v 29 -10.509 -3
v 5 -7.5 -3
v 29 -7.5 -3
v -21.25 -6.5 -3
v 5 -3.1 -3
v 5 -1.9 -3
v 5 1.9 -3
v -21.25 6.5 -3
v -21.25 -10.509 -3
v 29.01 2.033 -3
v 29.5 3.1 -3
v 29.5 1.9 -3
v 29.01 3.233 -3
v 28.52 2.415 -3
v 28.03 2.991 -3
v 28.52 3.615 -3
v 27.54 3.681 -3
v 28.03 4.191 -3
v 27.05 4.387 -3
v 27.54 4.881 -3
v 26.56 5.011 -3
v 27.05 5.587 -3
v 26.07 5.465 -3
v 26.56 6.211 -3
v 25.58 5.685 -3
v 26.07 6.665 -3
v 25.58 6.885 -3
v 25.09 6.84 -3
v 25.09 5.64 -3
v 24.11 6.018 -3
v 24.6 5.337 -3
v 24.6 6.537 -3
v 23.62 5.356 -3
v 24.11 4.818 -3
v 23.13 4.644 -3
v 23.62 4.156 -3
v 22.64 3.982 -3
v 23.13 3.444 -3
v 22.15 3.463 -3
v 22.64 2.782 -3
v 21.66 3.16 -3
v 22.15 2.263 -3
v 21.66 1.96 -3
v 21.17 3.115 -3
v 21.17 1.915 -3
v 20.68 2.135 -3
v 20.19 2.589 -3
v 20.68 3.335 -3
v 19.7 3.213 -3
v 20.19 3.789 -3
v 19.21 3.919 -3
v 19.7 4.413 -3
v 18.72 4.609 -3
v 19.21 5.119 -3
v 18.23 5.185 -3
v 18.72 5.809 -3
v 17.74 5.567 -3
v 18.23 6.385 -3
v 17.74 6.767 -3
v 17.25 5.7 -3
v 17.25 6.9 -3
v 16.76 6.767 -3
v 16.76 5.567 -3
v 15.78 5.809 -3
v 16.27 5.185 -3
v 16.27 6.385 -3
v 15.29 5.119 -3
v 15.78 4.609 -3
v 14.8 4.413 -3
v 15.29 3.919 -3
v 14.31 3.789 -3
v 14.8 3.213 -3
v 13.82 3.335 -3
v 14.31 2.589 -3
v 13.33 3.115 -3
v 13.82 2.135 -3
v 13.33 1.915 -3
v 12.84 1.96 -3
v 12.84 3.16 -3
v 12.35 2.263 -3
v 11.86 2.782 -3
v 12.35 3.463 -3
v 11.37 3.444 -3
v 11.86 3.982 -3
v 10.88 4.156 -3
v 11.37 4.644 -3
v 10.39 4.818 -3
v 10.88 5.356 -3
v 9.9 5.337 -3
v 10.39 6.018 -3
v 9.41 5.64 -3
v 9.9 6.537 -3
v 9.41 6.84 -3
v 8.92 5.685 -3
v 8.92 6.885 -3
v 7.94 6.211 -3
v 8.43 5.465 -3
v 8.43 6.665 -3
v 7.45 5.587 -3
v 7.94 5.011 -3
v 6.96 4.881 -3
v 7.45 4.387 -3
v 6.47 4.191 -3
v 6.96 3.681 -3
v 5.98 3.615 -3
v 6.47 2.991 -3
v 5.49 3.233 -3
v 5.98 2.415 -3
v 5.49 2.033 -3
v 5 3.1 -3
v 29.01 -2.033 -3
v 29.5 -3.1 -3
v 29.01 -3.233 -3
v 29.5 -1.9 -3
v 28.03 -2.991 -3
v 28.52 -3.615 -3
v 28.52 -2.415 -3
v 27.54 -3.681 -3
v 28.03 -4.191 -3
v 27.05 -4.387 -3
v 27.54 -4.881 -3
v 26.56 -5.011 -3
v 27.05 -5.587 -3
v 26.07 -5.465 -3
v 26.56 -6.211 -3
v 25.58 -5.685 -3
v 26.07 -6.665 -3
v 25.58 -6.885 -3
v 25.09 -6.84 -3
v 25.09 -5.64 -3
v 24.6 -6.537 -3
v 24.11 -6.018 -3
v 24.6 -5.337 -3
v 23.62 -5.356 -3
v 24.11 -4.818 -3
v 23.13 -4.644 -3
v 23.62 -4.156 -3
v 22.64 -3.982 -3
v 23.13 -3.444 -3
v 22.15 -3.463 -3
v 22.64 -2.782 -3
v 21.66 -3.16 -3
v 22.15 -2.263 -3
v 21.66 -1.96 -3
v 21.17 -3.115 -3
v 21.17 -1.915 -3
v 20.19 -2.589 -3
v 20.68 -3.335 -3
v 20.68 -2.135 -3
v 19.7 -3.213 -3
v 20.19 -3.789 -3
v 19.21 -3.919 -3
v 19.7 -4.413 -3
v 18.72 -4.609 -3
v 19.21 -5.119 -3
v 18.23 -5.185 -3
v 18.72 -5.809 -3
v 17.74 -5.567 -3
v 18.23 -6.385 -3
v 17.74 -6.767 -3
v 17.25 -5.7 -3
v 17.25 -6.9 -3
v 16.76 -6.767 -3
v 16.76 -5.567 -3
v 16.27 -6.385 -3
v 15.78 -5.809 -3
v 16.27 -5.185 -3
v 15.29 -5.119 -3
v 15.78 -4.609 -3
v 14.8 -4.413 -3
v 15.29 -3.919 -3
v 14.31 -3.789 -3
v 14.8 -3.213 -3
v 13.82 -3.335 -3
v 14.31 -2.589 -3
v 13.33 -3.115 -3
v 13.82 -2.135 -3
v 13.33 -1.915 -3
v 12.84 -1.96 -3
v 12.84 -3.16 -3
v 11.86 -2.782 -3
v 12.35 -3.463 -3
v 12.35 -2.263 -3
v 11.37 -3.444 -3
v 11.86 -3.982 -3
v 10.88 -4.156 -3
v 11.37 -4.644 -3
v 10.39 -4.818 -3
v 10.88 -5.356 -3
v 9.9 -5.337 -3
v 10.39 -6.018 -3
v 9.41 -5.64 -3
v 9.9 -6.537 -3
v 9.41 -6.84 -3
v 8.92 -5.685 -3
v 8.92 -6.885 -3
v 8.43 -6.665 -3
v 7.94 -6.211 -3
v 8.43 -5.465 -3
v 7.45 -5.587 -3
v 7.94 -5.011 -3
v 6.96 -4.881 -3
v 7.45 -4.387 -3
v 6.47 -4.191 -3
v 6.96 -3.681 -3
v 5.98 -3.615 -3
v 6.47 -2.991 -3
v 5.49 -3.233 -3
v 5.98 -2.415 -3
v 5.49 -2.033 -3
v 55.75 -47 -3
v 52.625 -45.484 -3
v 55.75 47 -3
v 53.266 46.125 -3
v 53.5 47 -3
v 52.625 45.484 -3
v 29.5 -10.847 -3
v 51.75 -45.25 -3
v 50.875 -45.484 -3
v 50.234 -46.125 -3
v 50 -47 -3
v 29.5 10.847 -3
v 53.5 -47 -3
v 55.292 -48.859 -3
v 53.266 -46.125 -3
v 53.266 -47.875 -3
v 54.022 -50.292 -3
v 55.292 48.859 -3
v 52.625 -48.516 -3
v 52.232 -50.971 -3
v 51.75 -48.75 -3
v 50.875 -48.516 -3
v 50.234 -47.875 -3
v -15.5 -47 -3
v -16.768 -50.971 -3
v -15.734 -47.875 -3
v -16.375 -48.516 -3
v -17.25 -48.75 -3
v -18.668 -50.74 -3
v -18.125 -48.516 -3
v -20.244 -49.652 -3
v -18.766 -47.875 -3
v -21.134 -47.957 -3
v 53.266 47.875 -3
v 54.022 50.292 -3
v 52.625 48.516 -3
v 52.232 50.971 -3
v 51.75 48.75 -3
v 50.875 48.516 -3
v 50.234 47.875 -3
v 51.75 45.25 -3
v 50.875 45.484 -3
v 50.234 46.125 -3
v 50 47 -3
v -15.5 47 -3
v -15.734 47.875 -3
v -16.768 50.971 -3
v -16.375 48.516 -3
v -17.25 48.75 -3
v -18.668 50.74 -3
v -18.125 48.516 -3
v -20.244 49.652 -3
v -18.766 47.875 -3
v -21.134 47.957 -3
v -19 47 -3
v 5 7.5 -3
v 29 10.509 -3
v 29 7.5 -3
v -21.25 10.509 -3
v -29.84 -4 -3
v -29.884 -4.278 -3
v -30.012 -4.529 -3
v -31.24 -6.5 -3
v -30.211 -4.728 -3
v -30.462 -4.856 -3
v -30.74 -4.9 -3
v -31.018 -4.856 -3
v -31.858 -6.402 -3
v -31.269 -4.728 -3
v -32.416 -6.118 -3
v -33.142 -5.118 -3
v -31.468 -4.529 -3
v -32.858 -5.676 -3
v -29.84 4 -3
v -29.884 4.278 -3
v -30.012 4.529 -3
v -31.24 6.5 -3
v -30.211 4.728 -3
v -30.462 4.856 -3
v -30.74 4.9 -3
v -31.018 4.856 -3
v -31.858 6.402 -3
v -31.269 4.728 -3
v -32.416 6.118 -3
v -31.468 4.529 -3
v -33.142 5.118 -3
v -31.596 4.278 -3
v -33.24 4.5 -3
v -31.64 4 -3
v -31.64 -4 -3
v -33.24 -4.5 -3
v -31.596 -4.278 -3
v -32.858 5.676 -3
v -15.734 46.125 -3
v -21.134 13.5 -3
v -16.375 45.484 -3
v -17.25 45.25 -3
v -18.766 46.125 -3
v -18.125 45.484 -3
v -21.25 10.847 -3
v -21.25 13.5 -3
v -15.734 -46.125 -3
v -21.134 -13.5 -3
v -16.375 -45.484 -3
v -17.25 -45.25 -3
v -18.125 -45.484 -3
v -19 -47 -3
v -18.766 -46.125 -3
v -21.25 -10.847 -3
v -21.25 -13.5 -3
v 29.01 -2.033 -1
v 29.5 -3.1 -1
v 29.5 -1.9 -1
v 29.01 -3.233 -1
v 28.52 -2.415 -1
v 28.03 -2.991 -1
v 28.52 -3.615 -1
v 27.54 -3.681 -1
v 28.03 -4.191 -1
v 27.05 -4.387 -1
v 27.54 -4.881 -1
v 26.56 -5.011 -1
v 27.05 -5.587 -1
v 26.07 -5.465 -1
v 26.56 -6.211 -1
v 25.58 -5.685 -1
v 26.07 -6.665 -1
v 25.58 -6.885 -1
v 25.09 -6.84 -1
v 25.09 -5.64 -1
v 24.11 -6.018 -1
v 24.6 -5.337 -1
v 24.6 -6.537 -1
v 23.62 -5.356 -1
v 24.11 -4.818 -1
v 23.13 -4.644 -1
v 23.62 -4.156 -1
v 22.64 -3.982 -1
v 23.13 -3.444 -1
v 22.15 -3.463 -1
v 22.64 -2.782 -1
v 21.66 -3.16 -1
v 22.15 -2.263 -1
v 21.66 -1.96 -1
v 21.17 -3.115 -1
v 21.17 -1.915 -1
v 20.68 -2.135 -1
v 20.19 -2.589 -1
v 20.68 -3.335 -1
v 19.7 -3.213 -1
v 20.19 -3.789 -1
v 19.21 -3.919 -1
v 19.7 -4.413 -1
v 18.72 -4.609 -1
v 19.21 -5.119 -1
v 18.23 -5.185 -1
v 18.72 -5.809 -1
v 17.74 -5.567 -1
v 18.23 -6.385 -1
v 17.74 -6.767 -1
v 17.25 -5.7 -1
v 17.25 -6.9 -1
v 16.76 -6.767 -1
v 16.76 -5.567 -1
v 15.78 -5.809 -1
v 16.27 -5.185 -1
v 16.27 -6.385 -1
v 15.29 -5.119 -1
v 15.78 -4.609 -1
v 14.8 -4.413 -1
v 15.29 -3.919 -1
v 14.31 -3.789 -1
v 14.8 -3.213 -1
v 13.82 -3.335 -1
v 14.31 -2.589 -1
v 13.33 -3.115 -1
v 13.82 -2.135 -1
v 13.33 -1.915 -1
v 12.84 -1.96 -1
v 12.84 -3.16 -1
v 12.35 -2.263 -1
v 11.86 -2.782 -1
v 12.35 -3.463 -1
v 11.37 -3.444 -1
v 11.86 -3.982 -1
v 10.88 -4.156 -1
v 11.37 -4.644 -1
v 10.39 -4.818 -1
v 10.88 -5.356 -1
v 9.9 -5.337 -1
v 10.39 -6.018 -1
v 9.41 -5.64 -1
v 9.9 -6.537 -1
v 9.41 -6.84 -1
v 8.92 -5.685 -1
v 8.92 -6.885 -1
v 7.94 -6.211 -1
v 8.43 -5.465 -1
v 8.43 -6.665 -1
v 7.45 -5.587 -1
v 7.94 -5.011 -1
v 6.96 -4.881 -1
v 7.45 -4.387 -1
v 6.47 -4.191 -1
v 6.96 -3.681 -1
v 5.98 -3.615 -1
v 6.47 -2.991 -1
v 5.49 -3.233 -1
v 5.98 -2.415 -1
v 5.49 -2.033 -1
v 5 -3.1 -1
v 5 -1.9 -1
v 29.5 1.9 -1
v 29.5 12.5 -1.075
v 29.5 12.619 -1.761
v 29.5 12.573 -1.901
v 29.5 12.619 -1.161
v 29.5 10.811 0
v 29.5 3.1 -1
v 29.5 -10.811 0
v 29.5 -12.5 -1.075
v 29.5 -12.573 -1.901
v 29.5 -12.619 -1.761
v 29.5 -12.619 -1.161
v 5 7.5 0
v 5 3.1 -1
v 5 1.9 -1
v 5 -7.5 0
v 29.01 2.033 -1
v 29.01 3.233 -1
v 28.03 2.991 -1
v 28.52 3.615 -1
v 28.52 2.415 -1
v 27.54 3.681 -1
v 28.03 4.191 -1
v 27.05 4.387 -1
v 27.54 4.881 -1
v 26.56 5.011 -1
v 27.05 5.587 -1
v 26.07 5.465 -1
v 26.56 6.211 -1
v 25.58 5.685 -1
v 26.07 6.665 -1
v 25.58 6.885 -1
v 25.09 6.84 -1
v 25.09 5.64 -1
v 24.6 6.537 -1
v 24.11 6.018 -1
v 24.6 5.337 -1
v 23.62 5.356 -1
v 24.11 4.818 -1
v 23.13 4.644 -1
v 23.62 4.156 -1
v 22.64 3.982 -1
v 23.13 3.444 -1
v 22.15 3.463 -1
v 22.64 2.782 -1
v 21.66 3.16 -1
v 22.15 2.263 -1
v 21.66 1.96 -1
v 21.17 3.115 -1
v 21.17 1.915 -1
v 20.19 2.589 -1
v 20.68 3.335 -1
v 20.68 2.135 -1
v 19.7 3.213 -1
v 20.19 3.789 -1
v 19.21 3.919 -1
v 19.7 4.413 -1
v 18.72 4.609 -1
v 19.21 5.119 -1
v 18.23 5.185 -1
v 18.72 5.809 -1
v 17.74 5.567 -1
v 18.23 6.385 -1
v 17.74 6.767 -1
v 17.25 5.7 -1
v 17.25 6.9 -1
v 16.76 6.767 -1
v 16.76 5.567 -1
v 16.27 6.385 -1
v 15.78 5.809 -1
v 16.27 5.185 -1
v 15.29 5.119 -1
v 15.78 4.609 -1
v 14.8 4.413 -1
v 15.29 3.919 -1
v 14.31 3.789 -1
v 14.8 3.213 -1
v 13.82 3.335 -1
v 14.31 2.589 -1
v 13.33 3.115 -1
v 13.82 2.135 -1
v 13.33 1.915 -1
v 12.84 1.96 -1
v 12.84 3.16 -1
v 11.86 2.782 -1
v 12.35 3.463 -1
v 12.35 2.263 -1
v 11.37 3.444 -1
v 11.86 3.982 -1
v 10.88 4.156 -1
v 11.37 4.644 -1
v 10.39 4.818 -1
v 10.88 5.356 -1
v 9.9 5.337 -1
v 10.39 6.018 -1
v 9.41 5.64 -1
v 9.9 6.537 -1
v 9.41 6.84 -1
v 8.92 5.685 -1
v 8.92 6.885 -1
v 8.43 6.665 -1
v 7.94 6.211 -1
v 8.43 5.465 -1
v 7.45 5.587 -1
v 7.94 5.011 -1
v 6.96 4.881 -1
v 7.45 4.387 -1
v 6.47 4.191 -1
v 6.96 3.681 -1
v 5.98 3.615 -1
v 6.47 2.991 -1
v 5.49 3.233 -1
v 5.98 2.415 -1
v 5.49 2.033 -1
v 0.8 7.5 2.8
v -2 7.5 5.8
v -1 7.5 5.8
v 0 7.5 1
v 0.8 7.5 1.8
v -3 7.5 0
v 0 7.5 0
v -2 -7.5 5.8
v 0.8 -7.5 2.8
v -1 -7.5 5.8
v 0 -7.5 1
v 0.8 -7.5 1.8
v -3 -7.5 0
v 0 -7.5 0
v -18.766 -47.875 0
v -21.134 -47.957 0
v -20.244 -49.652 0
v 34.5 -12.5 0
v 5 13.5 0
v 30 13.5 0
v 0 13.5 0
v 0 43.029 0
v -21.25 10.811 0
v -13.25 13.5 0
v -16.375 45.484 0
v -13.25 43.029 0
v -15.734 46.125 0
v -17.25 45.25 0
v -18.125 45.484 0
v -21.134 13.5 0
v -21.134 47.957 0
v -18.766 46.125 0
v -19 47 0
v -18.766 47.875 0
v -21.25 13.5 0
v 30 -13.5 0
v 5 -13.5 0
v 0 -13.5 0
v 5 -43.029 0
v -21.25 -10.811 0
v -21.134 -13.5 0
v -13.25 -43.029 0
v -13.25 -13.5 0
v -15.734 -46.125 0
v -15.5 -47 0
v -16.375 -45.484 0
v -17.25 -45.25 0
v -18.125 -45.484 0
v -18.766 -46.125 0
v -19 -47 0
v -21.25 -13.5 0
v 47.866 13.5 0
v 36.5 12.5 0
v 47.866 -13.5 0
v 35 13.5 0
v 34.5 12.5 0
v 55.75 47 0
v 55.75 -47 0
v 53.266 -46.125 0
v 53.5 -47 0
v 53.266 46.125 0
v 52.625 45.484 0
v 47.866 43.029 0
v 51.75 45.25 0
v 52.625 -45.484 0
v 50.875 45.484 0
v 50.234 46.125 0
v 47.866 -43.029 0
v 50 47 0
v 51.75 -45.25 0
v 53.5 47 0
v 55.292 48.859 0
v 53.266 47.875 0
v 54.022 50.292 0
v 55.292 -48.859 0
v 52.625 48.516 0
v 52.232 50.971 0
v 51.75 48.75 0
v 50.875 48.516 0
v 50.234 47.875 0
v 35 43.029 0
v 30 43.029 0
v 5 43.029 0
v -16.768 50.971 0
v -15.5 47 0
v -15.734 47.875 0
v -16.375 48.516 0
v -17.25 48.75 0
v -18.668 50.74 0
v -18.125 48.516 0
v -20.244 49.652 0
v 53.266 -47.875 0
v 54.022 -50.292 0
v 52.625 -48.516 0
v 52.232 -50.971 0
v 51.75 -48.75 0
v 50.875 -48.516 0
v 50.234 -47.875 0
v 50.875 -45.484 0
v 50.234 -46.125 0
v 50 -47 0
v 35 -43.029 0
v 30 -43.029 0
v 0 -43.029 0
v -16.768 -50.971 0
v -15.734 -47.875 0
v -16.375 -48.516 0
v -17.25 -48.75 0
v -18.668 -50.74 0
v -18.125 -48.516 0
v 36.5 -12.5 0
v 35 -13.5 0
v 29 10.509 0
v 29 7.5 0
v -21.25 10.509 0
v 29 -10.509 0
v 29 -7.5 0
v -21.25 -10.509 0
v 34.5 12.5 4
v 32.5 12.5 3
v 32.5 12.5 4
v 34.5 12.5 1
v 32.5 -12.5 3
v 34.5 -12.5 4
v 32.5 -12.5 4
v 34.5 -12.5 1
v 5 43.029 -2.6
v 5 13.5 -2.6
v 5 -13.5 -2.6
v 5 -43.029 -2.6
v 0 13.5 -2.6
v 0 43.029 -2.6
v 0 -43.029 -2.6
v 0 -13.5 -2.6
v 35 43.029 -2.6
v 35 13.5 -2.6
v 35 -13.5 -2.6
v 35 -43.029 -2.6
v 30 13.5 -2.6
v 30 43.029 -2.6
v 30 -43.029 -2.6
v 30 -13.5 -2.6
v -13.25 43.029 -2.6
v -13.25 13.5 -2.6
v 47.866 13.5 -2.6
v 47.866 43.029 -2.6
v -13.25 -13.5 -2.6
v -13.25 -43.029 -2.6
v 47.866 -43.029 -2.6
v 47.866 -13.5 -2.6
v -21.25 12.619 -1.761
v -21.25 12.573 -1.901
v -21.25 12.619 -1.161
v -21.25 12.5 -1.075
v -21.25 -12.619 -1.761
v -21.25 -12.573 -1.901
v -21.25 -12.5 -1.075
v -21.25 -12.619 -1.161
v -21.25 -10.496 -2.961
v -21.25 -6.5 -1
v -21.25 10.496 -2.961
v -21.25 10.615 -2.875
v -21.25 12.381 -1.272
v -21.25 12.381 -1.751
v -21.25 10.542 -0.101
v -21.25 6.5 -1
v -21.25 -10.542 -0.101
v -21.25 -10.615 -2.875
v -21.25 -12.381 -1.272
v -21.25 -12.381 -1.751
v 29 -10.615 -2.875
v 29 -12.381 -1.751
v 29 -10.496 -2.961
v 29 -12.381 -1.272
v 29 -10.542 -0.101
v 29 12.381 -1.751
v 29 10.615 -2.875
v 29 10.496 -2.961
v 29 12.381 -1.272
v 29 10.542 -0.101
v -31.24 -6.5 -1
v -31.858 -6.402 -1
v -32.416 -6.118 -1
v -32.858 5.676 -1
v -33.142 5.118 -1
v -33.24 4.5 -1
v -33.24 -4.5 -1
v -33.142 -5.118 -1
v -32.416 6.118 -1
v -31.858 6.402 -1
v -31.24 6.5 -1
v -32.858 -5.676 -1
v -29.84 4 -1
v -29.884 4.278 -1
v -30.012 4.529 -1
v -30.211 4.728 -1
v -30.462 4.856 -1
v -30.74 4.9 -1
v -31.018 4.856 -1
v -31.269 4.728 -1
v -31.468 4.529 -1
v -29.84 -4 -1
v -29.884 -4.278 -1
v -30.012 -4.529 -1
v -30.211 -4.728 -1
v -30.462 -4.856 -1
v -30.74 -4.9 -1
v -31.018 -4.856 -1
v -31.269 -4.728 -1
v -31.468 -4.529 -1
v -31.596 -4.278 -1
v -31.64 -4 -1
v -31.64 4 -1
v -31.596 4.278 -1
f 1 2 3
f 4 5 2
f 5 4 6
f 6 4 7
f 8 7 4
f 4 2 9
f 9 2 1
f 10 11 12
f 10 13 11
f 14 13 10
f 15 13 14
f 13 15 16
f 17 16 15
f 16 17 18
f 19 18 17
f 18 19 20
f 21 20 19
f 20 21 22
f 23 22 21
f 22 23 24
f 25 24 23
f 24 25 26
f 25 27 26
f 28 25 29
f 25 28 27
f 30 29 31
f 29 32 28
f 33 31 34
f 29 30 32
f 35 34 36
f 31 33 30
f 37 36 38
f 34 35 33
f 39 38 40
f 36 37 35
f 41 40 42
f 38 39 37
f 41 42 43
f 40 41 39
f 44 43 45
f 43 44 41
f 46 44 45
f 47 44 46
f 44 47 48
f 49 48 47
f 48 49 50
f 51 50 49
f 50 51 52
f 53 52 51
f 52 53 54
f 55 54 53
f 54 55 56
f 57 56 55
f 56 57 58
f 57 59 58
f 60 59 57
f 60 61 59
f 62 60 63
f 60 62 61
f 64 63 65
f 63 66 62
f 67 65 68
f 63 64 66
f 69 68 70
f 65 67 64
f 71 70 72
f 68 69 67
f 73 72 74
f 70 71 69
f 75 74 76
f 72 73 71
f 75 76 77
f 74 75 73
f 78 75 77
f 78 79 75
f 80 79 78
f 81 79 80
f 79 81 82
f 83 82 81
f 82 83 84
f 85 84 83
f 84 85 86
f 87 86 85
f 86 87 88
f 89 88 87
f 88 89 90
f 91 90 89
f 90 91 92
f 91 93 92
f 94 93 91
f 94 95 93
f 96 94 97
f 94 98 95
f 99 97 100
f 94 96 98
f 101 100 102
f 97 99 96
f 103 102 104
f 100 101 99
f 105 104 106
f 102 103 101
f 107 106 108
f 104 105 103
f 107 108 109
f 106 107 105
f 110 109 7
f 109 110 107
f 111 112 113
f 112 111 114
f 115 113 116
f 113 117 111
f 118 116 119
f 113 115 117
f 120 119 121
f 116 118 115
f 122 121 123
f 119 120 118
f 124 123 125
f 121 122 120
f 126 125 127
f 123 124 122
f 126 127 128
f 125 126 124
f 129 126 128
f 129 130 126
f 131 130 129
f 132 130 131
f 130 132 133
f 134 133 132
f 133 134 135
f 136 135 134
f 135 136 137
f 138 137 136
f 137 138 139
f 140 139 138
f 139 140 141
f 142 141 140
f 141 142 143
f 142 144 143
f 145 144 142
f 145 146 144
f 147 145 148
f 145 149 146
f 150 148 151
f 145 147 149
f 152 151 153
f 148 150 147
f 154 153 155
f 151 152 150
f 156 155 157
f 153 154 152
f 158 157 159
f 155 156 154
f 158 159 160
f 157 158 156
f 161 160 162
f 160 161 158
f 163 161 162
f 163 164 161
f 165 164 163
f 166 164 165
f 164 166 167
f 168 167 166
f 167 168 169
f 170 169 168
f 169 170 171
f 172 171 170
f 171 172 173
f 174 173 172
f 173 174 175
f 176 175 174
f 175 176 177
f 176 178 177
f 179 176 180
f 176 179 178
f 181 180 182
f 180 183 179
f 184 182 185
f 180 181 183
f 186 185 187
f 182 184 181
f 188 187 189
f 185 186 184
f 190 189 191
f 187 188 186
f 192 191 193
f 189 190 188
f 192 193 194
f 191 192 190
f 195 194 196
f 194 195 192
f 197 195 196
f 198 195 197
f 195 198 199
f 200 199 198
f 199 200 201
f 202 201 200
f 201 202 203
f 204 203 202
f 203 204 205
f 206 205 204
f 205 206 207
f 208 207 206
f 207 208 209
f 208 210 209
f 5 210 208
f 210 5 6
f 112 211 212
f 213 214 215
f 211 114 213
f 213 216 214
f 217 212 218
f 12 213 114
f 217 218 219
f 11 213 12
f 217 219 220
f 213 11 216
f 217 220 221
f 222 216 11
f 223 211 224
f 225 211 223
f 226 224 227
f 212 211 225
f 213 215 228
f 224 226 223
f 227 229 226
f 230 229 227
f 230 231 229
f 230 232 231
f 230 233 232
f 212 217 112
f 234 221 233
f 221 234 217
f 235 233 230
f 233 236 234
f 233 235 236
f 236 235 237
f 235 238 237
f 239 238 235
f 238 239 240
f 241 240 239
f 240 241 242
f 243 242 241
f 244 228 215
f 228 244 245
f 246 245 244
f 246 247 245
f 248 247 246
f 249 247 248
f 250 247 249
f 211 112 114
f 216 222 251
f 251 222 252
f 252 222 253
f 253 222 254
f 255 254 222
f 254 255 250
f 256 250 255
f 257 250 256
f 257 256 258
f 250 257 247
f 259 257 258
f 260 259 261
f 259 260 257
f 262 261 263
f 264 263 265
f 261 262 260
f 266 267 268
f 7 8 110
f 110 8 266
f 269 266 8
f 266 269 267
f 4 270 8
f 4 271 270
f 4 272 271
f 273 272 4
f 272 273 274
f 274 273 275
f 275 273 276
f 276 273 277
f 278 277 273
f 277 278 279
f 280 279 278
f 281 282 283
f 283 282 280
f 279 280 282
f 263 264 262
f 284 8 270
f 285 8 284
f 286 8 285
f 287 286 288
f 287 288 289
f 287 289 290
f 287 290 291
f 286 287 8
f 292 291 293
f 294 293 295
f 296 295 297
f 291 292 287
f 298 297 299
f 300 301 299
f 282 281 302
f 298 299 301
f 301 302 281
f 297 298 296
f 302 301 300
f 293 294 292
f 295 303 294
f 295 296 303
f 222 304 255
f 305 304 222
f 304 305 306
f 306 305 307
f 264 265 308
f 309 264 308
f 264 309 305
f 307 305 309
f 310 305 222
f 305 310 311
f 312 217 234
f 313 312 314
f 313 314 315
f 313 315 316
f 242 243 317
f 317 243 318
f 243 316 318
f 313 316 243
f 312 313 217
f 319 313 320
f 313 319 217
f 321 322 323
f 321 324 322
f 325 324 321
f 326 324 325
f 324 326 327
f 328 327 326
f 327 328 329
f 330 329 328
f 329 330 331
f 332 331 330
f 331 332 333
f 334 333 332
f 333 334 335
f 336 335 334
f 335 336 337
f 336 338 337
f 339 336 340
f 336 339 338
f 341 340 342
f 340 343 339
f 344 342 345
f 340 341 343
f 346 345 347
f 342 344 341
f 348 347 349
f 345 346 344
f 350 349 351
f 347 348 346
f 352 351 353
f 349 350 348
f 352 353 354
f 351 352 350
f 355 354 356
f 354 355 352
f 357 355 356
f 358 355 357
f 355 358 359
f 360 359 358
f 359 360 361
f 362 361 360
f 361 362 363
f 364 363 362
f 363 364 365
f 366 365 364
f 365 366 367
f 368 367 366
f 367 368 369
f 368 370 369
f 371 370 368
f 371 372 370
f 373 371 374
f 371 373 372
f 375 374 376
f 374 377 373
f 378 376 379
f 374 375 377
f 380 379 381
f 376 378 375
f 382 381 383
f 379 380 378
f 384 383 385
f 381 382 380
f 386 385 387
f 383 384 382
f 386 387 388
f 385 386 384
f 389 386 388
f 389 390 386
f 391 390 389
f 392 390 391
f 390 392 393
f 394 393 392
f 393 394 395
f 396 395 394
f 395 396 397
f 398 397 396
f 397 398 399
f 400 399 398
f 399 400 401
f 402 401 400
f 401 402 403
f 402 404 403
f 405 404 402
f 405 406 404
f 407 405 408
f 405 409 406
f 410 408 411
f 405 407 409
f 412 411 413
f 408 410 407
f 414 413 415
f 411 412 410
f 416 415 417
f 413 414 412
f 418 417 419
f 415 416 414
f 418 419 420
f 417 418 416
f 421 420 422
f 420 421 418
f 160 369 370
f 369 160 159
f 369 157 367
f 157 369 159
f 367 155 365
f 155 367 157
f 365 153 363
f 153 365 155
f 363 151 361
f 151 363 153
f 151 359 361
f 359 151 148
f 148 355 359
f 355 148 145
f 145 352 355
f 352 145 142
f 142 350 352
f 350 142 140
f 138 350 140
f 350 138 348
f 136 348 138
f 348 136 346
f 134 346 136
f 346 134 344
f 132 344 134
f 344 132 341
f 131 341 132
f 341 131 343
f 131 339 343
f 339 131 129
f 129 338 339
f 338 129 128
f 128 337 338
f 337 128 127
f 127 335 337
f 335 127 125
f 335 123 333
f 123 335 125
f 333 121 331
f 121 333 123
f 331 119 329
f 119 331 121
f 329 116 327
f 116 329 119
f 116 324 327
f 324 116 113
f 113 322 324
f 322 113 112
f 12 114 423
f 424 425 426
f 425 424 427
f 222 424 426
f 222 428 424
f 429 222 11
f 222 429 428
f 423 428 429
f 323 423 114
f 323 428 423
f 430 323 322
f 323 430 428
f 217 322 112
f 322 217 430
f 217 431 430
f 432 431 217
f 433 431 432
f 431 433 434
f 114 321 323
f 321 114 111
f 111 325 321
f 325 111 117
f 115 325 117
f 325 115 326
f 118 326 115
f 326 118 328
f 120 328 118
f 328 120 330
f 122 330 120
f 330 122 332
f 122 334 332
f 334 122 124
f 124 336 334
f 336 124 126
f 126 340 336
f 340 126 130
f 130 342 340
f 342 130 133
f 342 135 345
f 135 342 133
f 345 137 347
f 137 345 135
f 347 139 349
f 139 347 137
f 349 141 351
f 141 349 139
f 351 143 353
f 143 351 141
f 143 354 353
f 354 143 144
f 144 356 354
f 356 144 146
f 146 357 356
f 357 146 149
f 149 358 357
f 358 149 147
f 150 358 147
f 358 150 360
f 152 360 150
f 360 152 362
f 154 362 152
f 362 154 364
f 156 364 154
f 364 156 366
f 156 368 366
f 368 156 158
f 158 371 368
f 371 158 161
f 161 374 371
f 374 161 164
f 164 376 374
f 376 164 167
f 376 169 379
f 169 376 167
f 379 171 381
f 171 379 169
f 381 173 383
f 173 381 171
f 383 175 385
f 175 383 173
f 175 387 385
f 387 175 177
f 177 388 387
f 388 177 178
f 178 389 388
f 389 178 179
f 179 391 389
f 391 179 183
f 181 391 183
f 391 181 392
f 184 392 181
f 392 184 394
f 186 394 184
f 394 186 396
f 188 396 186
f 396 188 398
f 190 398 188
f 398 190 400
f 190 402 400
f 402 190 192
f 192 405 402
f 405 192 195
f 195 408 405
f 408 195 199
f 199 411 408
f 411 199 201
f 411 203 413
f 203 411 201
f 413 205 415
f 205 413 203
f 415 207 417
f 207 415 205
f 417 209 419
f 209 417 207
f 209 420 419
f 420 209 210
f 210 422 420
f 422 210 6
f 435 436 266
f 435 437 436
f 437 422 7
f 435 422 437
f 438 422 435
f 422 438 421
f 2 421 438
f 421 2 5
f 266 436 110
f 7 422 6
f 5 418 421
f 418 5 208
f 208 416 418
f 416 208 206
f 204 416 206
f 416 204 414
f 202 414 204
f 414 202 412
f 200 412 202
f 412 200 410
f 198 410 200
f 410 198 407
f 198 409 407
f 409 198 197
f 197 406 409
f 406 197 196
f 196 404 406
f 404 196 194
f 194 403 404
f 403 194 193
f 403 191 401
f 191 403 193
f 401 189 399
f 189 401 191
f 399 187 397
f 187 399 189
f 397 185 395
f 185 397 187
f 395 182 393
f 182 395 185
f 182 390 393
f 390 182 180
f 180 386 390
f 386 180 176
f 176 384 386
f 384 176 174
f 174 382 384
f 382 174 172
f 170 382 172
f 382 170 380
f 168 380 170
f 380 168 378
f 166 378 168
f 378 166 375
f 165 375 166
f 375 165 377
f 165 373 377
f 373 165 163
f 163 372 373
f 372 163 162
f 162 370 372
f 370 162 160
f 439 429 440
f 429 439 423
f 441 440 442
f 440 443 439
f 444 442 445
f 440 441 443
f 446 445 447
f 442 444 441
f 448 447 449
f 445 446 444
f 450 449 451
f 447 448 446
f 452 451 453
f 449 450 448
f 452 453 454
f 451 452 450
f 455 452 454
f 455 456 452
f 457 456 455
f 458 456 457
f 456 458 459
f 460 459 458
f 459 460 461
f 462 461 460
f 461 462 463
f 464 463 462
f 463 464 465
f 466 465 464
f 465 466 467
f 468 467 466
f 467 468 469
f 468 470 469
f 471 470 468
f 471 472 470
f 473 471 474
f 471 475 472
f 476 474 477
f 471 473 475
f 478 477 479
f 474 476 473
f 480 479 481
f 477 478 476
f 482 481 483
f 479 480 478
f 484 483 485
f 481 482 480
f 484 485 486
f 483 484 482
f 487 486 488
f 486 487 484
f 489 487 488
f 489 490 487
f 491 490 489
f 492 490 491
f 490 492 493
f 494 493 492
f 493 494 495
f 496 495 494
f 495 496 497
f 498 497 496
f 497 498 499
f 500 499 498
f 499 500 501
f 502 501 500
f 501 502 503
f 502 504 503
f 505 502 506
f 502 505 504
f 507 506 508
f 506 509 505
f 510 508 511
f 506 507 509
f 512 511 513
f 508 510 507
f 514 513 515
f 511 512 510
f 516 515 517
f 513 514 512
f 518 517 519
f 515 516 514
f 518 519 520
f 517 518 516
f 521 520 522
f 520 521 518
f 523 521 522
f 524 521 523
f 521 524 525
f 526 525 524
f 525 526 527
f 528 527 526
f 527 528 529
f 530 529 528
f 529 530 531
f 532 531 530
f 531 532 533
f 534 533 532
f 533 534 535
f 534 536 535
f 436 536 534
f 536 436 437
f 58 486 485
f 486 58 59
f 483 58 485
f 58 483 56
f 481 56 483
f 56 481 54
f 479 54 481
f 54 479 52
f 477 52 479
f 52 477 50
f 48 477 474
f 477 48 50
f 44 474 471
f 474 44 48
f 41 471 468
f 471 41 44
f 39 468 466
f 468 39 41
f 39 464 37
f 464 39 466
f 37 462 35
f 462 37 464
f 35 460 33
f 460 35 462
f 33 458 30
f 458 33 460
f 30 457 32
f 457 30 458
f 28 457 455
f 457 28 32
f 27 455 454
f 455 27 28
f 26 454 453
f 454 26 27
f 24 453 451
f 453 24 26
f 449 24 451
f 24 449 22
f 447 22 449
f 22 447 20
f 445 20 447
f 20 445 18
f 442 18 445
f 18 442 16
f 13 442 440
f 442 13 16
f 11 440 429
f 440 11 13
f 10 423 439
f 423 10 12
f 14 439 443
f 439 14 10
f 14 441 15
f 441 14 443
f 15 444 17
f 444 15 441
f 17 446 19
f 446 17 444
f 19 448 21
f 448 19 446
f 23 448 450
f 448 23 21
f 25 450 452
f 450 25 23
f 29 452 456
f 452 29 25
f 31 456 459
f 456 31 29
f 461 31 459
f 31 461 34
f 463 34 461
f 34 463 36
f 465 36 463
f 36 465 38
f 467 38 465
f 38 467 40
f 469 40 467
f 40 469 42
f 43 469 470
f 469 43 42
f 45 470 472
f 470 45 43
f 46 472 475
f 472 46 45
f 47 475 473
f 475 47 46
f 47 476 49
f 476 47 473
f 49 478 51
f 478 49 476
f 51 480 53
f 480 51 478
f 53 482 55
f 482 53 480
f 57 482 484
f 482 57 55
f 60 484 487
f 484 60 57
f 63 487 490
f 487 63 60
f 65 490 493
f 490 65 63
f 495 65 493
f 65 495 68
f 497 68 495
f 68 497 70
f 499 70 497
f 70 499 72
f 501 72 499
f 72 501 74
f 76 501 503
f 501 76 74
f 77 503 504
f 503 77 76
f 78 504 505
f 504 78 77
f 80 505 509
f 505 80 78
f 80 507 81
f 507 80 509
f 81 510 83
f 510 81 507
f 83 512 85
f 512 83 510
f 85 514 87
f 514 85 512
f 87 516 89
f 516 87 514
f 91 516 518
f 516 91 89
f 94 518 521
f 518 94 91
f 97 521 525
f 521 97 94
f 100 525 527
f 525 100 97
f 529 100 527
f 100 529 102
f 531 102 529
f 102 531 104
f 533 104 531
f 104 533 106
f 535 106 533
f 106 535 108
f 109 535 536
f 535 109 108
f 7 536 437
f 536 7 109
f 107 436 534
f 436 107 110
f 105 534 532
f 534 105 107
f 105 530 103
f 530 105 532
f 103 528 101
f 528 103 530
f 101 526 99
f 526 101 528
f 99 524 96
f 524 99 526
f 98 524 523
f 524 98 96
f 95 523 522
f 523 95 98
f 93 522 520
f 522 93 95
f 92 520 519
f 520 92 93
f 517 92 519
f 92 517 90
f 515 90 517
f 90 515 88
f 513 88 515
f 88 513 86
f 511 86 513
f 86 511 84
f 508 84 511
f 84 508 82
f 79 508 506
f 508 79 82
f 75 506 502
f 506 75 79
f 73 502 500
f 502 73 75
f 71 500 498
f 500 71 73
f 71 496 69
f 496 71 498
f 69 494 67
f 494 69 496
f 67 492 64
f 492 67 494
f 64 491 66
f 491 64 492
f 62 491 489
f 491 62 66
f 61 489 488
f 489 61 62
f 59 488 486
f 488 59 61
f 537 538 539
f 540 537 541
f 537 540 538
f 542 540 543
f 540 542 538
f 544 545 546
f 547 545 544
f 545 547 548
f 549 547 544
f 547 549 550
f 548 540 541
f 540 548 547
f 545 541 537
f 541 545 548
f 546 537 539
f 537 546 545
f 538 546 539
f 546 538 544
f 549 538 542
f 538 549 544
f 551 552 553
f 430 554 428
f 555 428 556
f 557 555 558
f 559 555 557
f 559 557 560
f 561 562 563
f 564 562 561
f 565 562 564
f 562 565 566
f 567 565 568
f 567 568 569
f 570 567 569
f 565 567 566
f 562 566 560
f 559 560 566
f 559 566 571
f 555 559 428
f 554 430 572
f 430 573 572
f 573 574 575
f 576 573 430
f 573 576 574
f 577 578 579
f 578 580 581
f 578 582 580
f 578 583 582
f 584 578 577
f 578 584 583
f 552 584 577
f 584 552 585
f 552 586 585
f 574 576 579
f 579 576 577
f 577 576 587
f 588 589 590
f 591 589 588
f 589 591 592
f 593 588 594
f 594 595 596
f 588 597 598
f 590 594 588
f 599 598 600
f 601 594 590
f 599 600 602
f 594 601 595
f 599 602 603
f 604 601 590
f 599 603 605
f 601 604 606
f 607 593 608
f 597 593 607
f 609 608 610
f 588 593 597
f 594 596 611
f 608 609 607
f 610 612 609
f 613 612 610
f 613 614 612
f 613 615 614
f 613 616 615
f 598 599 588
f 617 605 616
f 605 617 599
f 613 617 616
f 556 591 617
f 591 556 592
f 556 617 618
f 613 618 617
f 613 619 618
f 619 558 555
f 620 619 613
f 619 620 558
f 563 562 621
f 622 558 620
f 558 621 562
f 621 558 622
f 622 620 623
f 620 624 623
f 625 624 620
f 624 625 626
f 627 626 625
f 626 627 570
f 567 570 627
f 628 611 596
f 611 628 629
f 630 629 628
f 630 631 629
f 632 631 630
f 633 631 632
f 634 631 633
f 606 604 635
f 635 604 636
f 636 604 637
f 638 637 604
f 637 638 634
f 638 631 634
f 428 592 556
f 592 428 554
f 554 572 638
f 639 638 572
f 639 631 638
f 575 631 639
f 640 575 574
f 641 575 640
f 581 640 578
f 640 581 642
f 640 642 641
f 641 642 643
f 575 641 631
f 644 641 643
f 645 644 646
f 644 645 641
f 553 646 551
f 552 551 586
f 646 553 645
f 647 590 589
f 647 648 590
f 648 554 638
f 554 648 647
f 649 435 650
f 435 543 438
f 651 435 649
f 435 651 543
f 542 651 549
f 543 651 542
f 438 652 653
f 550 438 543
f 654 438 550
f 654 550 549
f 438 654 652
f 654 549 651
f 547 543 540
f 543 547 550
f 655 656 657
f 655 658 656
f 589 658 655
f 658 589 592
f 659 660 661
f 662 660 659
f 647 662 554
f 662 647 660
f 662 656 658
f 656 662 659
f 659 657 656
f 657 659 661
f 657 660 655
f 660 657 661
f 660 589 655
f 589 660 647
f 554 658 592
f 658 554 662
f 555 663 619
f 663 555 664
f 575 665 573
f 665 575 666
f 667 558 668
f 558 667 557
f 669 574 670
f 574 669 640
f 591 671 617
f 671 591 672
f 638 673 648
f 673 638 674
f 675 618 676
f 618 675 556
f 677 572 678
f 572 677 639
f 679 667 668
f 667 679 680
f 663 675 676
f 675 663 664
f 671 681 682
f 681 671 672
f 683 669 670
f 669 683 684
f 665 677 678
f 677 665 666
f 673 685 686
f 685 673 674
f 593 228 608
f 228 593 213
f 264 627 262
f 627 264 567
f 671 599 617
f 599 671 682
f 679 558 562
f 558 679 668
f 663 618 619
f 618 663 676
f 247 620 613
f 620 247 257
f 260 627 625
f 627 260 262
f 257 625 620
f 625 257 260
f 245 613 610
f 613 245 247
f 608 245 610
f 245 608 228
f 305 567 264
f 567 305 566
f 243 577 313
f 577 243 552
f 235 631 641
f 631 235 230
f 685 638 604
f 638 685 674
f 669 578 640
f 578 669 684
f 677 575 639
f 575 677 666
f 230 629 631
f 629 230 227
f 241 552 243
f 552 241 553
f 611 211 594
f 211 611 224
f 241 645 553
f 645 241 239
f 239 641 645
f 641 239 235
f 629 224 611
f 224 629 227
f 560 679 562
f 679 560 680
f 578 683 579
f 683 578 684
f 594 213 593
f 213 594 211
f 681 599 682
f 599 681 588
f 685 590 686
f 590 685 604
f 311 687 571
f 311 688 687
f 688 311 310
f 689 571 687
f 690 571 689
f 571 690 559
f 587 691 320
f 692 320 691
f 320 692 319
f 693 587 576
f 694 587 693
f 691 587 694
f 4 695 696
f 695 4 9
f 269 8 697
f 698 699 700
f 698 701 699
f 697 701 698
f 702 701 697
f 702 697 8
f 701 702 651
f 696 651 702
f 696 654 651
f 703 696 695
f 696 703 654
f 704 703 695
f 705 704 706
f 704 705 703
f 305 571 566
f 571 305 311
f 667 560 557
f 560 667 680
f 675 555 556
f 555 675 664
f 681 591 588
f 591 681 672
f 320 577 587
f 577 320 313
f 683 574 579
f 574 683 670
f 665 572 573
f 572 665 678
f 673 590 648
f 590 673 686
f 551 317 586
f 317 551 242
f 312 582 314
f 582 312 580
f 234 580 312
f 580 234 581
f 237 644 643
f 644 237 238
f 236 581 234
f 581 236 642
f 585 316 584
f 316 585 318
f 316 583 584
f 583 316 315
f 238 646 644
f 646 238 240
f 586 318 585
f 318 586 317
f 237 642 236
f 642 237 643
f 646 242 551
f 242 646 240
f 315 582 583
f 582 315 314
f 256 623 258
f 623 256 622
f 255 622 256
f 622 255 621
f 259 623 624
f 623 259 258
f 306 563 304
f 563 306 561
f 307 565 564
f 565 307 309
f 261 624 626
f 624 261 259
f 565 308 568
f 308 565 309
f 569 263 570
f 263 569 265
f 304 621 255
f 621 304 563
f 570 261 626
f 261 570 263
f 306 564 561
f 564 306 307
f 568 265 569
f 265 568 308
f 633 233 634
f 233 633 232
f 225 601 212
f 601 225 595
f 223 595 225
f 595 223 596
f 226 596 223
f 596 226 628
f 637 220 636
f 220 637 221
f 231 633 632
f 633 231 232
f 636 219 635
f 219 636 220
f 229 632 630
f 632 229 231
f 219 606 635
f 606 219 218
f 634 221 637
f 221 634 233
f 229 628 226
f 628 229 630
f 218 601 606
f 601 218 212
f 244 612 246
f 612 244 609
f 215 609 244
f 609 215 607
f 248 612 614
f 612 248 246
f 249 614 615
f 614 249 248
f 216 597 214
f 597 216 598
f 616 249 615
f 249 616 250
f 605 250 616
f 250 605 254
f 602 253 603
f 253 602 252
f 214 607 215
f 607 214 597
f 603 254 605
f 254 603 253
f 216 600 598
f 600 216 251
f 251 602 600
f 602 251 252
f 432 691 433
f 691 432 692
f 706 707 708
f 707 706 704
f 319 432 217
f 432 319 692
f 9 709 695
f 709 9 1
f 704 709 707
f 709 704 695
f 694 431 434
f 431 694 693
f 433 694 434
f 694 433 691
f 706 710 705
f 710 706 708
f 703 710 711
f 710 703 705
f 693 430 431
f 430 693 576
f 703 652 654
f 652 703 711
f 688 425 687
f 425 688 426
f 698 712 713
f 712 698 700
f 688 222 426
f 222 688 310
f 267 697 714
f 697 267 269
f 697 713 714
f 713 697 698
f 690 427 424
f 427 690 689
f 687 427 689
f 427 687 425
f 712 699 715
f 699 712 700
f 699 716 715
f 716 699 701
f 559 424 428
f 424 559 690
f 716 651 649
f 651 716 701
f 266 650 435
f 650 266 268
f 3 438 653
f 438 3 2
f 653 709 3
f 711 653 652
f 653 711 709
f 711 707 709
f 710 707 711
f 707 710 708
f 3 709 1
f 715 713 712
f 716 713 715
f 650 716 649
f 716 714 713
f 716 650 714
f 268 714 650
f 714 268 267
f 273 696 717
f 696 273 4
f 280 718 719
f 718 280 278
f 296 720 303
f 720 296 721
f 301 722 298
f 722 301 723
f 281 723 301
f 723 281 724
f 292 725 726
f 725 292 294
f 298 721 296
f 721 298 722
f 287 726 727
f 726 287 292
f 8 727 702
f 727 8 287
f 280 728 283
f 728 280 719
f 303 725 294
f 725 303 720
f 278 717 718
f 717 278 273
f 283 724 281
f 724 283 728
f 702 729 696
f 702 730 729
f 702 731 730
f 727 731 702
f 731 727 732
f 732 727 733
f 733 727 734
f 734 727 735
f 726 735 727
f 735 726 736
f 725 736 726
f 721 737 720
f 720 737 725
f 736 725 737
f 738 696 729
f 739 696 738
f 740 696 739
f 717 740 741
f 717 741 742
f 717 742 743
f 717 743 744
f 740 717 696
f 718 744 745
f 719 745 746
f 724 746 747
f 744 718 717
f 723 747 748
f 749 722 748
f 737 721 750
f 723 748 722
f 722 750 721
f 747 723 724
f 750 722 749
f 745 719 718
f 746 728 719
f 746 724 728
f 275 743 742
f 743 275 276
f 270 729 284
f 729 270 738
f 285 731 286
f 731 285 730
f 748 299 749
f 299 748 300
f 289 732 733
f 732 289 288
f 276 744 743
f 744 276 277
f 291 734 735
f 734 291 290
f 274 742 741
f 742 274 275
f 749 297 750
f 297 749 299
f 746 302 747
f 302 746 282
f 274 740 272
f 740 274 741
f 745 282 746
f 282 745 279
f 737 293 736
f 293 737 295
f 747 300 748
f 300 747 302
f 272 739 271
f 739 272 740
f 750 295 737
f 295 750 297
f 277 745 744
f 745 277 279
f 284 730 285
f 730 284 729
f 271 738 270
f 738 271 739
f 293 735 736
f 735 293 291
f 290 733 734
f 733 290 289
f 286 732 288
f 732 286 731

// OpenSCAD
// -*- mode: scad; c-basic-offset: 2; indent-tabs-mode: nil; -*-
// (c) h.zeller@acm.org License: CC-BY-SA
e=0.01;

with_frame=true;             // The mounting frame
with_isolation=true;         // isolation layer in frame
with_spring_cover=false;     // covering the spring with cover (needs bridging)
with_whole_width_rest=true;  // rest on din-rail for whole length.
lug_len=10;            // Length of the lug used pull down to remove from rail

// Size of the hole-pattern for mounting.
screw_along  = 94;
screw_across = 69;
screw_bar=8;           // Width of the outer frame bar with screw holes
screw_dia=3.5;

bottom_thick=3;       // Thickness of whole underside frame
isolation_thick=0.4;  // Thickness of isolation bottom.

// These depend on the filament, needs experimentation for each filament.
spring_height=2;      // Needs to be < bottom_thick if with_spring_cover
spring_thick=1.2;

rest_shelf=5;         // The width of the area resting on the rail itself.
hold_wide=25;         // The width of the top 'hook' holding on the rail.
latch_wide=15;        // The width of the moveable clip at the bottom of rail.
slide_gap=0.25;       // In-place printed gap for clip to move.

// General sizing of the DIN rail. Essentially constants
din_wide=35;
din_dist=din_wide - 0.5; // Slightly smaller for more clamping action.
din_sheet=1;           // thickness of the din-rail metal

plate_x = screw_across + screw_bar;
plate_y = hold_wide + 2;

module hook_polygon(do_slide=false) {
  w=1;
  h=do_slide ? 0.8 : 2;
  ledge=1;
  hd=sqrt(2) * h;
  // TODO: doing both hook types in one do_slide-configured array is not
  // very readable and should be broken up into two.
  polygon([[-2*w, -bottom_thick], [0, -bottom_thick], [0, din_sheet],
           [h, h + din_sheet], [h, h + ledge + din_sheet],
           if (do_slide) [-1, h + ledge + din_sheet+3],
           if (do_slide) [-2, h + ledge + din_sheet+3],
           if (do_slide) [-3, 0],
           if (!do_slide) [0, h + ledge + din_sheet],
           [-2*w, 0],
           ]);
}

module hook(len=15, do_slide=false) {
  translate([0, len/2, 0]) rotate([90, 0, 0])
    linear_extrude(height=len) hook_polygon(do_slide);
}

module spring_polygon(len=20, wide=15, thick=1) {
  p=3;  // periods
  n=50;
  actual_w=wide/2 - thick/2;
  points = [
    for (i = [0:n]) [ len*i/n, actual_w*cos(i * p * 360 / n) + thick/2],
    for (i = [0:n]) [ len*(n-i)/n, actual_w*cos((n-i) * p * 360 / n) - thick/2],
  ];

  translate([0, -actual_w, 0]) polygon(points);
}

module spring(len=20, wide=15, thick=1, height=1) {
  linear_extrude(height=height) spring_polygon(len, wide, thick);
}

module spring_symmetric(len=20, wide=15, delta=5, thick=1, height=1) {
  half_w=wide/2-delta/2;
  translate([0, -delta/2, -bottom_thick]) spring(len, half_w, thick, height);
  scale([1, -1, 1]) translate([0, -delta/2, -bottom_thick])
    spring(len, half_w, thick, height);
}

module bottom_plate() {
  w = screw_along;
  h = screw_across;

  difference() {
    translate([din_dist/2, 0, -bottom_thick/2]) {
      cube([plate_x, plate_y, bottom_thick], center=true);

      if (with_frame) {
        if (with_isolation) {
          translate([-h/2, -w/2, -bottom_thick/2]) cube([h, w, isolation_thick]);
        }

        if (with_whole_width_rest) {
          translate([-din_dist/2, -w/2, -bottom_thick/2])
            cube([rest_shelf, w, bottom_thick]);
          translate([-din_dist/2 + din_wide - rest_shelf, -w/2, -bottom_thick/2])
            cube([rest_shelf, w, bottom_thick]);
        }

        // frame around. hull() joined cylinders making nice rounded corners.
        hull() {
          translate([h/2, w/2, -bottom_thick/2]) cylinder(r=screw_bar/2, h=bottom_thick);
          translate([-h/2, w/2, -bottom_thick/2]) cylinder(r=screw_bar/2, h=bottom_thick);
        }
        hull() {
          translate([h/2, -w/2, -bottom_thick/2]) cylinder(r=screw_bar/2, h=bottom_thick);
          translate([-h/2, -w/2, -bottom_thick/2]) cylinder(r=screw_bar/2, h=bottom_thick);
        }
        hull() {
          translate([-h/2, w/2, -bottom_thick/2]) cylinder(r=screw_bar/2, h=bottom_thick);
          translate([-h/2, -w/2, -bottom_thick/2]) cylinder(r=screw_bar/2, h=bottom_thick);
        }
        hull() {
          translate([h/2, w/2, -bottom_thick/2]) cylinder(r=screw_bar/2, h=bottom_thick);
          translate([h/2, -w/2, -bottom_thick/2]) cylinder(r=screw_bar/2, h=bottom_thick);
        }
      }
    }

    for (dx = [-1, 1]) {
      for (dy = [-1, 1]) {
        translate([din_dist/2+dx*h/2, dy*w/2, -bottom_thick-e]) cylinder(r=screw_dia/2, h=bottom_thick+2*e, $fn=12);
      }
    }
  }
}

module spring_latch() {
  hook(len=latch_wide, do_slide=true);

  translate([rest_shelf, 0, 0]) spring_symmetric(len=din_dist - 2*rest_shelf,
                                                 thick=spring_thick,
                                                 wide=latch_wide,
                                                 delta=5, height=spring_height);
}

module dovetail(h=2, gap=slide_gap, len=20) {
  c=h/10;  // center
  out=h/1.5;
  hull() {
    translate([-h/2, -gap/2+e, 0]) cylinder(r=gap/2, h=len);
    translate([-c, -out, 0]) cylinder(r=gap/2, h=len);
  }
  hull() {
    translate([-c, -out, 0]) cylinder(r=gap/2, h=len);
    translate([+c, -out, 0]) cylinder(r=gap/2, h=len);
  }
  hull() {
    translate([+c, -out, 0]) cylinder(r=gap/2, h=len);
    translate([+h/2, -gap/2+e, 0]) cylinder(r=gap/2, h=len);
  }
}

module one_slide(len=2, slide_wide=(plate_y-latch_wide)/4) {
  translate([din_dist-rest_shelf, -latch_wide/2-slide_wide, -bottom_thick/2])
    rotate([0, -90, 0]) dovetail(h=bottom_thick, len=len);
}

module spring_punch(skin=with_spring_cover ? isolation_thick : 0) {
  color("yellow") translate([rest_shelf, -latch_wide/2, -bottom_thick-e-skin])
    cube([din_dist-2*rest_shelf, latch_wide, bottom_thick+2*e]);
}

module punch() {
  spring_punch();  // Space for the spring.
  hull() {
    one_slide(len=0.5);
    scale([1, -1, 1]) one_slide(len=0.5);
  }
  one_slide(len=screw_across);
  scale([1, -1, 1]) one_slide(len=screw_across);
}

module open_pull_lug(h=2) {
  r=2;
  wide=6.5;  // half-wide. Good enough for pocket knife blade.
  translate([e, 0, -bottom_thick])
    difference() {
    hull() {
      translate([-lug_len, -wide, 0]) cube([lug_len, 2*wide, h]);
      translate([-lug_len, -wide+r, 0]) cylinder(r=r, h=h, $fn=20);
      translate([-lug_len, +wide-r, 0]) cylinder(r=r, h=h, $fn=20);
    }
    translate([0, 0, -e]) hull() {
      translate([-lug_len+0.5, -wide+0.5+r, 0]) cylinder(r=1.8/2, h=h+2*e, $fn=20);
      translate([-lug_len+0.5, +wide-0.5-r, 0]) cylinder(r=1.8/2, h=h+2*e, $fn=20);
    }
  }
}


// Hooks
module assembly_part_hooks() {
  // retainer hook
  translate([din_dist, 0, 0]) scale([-1, 1, 1]) hook(len=hold_wide);
  spring_latch();  // latching hook
}

module assembly_part_baseplate() {
  // Place to mount PCB etc.
  difference() {
      bottom_plate();
      punch();
    }
}

module assembly_part_pull() {
  // Make simple to open.
  translate([-(plate_x - din_dist)/2, 0, 0]) open_pull_lug();
}

assembly_part_hooks();
assembly_part_baseplate();
assembly_part_pull();
